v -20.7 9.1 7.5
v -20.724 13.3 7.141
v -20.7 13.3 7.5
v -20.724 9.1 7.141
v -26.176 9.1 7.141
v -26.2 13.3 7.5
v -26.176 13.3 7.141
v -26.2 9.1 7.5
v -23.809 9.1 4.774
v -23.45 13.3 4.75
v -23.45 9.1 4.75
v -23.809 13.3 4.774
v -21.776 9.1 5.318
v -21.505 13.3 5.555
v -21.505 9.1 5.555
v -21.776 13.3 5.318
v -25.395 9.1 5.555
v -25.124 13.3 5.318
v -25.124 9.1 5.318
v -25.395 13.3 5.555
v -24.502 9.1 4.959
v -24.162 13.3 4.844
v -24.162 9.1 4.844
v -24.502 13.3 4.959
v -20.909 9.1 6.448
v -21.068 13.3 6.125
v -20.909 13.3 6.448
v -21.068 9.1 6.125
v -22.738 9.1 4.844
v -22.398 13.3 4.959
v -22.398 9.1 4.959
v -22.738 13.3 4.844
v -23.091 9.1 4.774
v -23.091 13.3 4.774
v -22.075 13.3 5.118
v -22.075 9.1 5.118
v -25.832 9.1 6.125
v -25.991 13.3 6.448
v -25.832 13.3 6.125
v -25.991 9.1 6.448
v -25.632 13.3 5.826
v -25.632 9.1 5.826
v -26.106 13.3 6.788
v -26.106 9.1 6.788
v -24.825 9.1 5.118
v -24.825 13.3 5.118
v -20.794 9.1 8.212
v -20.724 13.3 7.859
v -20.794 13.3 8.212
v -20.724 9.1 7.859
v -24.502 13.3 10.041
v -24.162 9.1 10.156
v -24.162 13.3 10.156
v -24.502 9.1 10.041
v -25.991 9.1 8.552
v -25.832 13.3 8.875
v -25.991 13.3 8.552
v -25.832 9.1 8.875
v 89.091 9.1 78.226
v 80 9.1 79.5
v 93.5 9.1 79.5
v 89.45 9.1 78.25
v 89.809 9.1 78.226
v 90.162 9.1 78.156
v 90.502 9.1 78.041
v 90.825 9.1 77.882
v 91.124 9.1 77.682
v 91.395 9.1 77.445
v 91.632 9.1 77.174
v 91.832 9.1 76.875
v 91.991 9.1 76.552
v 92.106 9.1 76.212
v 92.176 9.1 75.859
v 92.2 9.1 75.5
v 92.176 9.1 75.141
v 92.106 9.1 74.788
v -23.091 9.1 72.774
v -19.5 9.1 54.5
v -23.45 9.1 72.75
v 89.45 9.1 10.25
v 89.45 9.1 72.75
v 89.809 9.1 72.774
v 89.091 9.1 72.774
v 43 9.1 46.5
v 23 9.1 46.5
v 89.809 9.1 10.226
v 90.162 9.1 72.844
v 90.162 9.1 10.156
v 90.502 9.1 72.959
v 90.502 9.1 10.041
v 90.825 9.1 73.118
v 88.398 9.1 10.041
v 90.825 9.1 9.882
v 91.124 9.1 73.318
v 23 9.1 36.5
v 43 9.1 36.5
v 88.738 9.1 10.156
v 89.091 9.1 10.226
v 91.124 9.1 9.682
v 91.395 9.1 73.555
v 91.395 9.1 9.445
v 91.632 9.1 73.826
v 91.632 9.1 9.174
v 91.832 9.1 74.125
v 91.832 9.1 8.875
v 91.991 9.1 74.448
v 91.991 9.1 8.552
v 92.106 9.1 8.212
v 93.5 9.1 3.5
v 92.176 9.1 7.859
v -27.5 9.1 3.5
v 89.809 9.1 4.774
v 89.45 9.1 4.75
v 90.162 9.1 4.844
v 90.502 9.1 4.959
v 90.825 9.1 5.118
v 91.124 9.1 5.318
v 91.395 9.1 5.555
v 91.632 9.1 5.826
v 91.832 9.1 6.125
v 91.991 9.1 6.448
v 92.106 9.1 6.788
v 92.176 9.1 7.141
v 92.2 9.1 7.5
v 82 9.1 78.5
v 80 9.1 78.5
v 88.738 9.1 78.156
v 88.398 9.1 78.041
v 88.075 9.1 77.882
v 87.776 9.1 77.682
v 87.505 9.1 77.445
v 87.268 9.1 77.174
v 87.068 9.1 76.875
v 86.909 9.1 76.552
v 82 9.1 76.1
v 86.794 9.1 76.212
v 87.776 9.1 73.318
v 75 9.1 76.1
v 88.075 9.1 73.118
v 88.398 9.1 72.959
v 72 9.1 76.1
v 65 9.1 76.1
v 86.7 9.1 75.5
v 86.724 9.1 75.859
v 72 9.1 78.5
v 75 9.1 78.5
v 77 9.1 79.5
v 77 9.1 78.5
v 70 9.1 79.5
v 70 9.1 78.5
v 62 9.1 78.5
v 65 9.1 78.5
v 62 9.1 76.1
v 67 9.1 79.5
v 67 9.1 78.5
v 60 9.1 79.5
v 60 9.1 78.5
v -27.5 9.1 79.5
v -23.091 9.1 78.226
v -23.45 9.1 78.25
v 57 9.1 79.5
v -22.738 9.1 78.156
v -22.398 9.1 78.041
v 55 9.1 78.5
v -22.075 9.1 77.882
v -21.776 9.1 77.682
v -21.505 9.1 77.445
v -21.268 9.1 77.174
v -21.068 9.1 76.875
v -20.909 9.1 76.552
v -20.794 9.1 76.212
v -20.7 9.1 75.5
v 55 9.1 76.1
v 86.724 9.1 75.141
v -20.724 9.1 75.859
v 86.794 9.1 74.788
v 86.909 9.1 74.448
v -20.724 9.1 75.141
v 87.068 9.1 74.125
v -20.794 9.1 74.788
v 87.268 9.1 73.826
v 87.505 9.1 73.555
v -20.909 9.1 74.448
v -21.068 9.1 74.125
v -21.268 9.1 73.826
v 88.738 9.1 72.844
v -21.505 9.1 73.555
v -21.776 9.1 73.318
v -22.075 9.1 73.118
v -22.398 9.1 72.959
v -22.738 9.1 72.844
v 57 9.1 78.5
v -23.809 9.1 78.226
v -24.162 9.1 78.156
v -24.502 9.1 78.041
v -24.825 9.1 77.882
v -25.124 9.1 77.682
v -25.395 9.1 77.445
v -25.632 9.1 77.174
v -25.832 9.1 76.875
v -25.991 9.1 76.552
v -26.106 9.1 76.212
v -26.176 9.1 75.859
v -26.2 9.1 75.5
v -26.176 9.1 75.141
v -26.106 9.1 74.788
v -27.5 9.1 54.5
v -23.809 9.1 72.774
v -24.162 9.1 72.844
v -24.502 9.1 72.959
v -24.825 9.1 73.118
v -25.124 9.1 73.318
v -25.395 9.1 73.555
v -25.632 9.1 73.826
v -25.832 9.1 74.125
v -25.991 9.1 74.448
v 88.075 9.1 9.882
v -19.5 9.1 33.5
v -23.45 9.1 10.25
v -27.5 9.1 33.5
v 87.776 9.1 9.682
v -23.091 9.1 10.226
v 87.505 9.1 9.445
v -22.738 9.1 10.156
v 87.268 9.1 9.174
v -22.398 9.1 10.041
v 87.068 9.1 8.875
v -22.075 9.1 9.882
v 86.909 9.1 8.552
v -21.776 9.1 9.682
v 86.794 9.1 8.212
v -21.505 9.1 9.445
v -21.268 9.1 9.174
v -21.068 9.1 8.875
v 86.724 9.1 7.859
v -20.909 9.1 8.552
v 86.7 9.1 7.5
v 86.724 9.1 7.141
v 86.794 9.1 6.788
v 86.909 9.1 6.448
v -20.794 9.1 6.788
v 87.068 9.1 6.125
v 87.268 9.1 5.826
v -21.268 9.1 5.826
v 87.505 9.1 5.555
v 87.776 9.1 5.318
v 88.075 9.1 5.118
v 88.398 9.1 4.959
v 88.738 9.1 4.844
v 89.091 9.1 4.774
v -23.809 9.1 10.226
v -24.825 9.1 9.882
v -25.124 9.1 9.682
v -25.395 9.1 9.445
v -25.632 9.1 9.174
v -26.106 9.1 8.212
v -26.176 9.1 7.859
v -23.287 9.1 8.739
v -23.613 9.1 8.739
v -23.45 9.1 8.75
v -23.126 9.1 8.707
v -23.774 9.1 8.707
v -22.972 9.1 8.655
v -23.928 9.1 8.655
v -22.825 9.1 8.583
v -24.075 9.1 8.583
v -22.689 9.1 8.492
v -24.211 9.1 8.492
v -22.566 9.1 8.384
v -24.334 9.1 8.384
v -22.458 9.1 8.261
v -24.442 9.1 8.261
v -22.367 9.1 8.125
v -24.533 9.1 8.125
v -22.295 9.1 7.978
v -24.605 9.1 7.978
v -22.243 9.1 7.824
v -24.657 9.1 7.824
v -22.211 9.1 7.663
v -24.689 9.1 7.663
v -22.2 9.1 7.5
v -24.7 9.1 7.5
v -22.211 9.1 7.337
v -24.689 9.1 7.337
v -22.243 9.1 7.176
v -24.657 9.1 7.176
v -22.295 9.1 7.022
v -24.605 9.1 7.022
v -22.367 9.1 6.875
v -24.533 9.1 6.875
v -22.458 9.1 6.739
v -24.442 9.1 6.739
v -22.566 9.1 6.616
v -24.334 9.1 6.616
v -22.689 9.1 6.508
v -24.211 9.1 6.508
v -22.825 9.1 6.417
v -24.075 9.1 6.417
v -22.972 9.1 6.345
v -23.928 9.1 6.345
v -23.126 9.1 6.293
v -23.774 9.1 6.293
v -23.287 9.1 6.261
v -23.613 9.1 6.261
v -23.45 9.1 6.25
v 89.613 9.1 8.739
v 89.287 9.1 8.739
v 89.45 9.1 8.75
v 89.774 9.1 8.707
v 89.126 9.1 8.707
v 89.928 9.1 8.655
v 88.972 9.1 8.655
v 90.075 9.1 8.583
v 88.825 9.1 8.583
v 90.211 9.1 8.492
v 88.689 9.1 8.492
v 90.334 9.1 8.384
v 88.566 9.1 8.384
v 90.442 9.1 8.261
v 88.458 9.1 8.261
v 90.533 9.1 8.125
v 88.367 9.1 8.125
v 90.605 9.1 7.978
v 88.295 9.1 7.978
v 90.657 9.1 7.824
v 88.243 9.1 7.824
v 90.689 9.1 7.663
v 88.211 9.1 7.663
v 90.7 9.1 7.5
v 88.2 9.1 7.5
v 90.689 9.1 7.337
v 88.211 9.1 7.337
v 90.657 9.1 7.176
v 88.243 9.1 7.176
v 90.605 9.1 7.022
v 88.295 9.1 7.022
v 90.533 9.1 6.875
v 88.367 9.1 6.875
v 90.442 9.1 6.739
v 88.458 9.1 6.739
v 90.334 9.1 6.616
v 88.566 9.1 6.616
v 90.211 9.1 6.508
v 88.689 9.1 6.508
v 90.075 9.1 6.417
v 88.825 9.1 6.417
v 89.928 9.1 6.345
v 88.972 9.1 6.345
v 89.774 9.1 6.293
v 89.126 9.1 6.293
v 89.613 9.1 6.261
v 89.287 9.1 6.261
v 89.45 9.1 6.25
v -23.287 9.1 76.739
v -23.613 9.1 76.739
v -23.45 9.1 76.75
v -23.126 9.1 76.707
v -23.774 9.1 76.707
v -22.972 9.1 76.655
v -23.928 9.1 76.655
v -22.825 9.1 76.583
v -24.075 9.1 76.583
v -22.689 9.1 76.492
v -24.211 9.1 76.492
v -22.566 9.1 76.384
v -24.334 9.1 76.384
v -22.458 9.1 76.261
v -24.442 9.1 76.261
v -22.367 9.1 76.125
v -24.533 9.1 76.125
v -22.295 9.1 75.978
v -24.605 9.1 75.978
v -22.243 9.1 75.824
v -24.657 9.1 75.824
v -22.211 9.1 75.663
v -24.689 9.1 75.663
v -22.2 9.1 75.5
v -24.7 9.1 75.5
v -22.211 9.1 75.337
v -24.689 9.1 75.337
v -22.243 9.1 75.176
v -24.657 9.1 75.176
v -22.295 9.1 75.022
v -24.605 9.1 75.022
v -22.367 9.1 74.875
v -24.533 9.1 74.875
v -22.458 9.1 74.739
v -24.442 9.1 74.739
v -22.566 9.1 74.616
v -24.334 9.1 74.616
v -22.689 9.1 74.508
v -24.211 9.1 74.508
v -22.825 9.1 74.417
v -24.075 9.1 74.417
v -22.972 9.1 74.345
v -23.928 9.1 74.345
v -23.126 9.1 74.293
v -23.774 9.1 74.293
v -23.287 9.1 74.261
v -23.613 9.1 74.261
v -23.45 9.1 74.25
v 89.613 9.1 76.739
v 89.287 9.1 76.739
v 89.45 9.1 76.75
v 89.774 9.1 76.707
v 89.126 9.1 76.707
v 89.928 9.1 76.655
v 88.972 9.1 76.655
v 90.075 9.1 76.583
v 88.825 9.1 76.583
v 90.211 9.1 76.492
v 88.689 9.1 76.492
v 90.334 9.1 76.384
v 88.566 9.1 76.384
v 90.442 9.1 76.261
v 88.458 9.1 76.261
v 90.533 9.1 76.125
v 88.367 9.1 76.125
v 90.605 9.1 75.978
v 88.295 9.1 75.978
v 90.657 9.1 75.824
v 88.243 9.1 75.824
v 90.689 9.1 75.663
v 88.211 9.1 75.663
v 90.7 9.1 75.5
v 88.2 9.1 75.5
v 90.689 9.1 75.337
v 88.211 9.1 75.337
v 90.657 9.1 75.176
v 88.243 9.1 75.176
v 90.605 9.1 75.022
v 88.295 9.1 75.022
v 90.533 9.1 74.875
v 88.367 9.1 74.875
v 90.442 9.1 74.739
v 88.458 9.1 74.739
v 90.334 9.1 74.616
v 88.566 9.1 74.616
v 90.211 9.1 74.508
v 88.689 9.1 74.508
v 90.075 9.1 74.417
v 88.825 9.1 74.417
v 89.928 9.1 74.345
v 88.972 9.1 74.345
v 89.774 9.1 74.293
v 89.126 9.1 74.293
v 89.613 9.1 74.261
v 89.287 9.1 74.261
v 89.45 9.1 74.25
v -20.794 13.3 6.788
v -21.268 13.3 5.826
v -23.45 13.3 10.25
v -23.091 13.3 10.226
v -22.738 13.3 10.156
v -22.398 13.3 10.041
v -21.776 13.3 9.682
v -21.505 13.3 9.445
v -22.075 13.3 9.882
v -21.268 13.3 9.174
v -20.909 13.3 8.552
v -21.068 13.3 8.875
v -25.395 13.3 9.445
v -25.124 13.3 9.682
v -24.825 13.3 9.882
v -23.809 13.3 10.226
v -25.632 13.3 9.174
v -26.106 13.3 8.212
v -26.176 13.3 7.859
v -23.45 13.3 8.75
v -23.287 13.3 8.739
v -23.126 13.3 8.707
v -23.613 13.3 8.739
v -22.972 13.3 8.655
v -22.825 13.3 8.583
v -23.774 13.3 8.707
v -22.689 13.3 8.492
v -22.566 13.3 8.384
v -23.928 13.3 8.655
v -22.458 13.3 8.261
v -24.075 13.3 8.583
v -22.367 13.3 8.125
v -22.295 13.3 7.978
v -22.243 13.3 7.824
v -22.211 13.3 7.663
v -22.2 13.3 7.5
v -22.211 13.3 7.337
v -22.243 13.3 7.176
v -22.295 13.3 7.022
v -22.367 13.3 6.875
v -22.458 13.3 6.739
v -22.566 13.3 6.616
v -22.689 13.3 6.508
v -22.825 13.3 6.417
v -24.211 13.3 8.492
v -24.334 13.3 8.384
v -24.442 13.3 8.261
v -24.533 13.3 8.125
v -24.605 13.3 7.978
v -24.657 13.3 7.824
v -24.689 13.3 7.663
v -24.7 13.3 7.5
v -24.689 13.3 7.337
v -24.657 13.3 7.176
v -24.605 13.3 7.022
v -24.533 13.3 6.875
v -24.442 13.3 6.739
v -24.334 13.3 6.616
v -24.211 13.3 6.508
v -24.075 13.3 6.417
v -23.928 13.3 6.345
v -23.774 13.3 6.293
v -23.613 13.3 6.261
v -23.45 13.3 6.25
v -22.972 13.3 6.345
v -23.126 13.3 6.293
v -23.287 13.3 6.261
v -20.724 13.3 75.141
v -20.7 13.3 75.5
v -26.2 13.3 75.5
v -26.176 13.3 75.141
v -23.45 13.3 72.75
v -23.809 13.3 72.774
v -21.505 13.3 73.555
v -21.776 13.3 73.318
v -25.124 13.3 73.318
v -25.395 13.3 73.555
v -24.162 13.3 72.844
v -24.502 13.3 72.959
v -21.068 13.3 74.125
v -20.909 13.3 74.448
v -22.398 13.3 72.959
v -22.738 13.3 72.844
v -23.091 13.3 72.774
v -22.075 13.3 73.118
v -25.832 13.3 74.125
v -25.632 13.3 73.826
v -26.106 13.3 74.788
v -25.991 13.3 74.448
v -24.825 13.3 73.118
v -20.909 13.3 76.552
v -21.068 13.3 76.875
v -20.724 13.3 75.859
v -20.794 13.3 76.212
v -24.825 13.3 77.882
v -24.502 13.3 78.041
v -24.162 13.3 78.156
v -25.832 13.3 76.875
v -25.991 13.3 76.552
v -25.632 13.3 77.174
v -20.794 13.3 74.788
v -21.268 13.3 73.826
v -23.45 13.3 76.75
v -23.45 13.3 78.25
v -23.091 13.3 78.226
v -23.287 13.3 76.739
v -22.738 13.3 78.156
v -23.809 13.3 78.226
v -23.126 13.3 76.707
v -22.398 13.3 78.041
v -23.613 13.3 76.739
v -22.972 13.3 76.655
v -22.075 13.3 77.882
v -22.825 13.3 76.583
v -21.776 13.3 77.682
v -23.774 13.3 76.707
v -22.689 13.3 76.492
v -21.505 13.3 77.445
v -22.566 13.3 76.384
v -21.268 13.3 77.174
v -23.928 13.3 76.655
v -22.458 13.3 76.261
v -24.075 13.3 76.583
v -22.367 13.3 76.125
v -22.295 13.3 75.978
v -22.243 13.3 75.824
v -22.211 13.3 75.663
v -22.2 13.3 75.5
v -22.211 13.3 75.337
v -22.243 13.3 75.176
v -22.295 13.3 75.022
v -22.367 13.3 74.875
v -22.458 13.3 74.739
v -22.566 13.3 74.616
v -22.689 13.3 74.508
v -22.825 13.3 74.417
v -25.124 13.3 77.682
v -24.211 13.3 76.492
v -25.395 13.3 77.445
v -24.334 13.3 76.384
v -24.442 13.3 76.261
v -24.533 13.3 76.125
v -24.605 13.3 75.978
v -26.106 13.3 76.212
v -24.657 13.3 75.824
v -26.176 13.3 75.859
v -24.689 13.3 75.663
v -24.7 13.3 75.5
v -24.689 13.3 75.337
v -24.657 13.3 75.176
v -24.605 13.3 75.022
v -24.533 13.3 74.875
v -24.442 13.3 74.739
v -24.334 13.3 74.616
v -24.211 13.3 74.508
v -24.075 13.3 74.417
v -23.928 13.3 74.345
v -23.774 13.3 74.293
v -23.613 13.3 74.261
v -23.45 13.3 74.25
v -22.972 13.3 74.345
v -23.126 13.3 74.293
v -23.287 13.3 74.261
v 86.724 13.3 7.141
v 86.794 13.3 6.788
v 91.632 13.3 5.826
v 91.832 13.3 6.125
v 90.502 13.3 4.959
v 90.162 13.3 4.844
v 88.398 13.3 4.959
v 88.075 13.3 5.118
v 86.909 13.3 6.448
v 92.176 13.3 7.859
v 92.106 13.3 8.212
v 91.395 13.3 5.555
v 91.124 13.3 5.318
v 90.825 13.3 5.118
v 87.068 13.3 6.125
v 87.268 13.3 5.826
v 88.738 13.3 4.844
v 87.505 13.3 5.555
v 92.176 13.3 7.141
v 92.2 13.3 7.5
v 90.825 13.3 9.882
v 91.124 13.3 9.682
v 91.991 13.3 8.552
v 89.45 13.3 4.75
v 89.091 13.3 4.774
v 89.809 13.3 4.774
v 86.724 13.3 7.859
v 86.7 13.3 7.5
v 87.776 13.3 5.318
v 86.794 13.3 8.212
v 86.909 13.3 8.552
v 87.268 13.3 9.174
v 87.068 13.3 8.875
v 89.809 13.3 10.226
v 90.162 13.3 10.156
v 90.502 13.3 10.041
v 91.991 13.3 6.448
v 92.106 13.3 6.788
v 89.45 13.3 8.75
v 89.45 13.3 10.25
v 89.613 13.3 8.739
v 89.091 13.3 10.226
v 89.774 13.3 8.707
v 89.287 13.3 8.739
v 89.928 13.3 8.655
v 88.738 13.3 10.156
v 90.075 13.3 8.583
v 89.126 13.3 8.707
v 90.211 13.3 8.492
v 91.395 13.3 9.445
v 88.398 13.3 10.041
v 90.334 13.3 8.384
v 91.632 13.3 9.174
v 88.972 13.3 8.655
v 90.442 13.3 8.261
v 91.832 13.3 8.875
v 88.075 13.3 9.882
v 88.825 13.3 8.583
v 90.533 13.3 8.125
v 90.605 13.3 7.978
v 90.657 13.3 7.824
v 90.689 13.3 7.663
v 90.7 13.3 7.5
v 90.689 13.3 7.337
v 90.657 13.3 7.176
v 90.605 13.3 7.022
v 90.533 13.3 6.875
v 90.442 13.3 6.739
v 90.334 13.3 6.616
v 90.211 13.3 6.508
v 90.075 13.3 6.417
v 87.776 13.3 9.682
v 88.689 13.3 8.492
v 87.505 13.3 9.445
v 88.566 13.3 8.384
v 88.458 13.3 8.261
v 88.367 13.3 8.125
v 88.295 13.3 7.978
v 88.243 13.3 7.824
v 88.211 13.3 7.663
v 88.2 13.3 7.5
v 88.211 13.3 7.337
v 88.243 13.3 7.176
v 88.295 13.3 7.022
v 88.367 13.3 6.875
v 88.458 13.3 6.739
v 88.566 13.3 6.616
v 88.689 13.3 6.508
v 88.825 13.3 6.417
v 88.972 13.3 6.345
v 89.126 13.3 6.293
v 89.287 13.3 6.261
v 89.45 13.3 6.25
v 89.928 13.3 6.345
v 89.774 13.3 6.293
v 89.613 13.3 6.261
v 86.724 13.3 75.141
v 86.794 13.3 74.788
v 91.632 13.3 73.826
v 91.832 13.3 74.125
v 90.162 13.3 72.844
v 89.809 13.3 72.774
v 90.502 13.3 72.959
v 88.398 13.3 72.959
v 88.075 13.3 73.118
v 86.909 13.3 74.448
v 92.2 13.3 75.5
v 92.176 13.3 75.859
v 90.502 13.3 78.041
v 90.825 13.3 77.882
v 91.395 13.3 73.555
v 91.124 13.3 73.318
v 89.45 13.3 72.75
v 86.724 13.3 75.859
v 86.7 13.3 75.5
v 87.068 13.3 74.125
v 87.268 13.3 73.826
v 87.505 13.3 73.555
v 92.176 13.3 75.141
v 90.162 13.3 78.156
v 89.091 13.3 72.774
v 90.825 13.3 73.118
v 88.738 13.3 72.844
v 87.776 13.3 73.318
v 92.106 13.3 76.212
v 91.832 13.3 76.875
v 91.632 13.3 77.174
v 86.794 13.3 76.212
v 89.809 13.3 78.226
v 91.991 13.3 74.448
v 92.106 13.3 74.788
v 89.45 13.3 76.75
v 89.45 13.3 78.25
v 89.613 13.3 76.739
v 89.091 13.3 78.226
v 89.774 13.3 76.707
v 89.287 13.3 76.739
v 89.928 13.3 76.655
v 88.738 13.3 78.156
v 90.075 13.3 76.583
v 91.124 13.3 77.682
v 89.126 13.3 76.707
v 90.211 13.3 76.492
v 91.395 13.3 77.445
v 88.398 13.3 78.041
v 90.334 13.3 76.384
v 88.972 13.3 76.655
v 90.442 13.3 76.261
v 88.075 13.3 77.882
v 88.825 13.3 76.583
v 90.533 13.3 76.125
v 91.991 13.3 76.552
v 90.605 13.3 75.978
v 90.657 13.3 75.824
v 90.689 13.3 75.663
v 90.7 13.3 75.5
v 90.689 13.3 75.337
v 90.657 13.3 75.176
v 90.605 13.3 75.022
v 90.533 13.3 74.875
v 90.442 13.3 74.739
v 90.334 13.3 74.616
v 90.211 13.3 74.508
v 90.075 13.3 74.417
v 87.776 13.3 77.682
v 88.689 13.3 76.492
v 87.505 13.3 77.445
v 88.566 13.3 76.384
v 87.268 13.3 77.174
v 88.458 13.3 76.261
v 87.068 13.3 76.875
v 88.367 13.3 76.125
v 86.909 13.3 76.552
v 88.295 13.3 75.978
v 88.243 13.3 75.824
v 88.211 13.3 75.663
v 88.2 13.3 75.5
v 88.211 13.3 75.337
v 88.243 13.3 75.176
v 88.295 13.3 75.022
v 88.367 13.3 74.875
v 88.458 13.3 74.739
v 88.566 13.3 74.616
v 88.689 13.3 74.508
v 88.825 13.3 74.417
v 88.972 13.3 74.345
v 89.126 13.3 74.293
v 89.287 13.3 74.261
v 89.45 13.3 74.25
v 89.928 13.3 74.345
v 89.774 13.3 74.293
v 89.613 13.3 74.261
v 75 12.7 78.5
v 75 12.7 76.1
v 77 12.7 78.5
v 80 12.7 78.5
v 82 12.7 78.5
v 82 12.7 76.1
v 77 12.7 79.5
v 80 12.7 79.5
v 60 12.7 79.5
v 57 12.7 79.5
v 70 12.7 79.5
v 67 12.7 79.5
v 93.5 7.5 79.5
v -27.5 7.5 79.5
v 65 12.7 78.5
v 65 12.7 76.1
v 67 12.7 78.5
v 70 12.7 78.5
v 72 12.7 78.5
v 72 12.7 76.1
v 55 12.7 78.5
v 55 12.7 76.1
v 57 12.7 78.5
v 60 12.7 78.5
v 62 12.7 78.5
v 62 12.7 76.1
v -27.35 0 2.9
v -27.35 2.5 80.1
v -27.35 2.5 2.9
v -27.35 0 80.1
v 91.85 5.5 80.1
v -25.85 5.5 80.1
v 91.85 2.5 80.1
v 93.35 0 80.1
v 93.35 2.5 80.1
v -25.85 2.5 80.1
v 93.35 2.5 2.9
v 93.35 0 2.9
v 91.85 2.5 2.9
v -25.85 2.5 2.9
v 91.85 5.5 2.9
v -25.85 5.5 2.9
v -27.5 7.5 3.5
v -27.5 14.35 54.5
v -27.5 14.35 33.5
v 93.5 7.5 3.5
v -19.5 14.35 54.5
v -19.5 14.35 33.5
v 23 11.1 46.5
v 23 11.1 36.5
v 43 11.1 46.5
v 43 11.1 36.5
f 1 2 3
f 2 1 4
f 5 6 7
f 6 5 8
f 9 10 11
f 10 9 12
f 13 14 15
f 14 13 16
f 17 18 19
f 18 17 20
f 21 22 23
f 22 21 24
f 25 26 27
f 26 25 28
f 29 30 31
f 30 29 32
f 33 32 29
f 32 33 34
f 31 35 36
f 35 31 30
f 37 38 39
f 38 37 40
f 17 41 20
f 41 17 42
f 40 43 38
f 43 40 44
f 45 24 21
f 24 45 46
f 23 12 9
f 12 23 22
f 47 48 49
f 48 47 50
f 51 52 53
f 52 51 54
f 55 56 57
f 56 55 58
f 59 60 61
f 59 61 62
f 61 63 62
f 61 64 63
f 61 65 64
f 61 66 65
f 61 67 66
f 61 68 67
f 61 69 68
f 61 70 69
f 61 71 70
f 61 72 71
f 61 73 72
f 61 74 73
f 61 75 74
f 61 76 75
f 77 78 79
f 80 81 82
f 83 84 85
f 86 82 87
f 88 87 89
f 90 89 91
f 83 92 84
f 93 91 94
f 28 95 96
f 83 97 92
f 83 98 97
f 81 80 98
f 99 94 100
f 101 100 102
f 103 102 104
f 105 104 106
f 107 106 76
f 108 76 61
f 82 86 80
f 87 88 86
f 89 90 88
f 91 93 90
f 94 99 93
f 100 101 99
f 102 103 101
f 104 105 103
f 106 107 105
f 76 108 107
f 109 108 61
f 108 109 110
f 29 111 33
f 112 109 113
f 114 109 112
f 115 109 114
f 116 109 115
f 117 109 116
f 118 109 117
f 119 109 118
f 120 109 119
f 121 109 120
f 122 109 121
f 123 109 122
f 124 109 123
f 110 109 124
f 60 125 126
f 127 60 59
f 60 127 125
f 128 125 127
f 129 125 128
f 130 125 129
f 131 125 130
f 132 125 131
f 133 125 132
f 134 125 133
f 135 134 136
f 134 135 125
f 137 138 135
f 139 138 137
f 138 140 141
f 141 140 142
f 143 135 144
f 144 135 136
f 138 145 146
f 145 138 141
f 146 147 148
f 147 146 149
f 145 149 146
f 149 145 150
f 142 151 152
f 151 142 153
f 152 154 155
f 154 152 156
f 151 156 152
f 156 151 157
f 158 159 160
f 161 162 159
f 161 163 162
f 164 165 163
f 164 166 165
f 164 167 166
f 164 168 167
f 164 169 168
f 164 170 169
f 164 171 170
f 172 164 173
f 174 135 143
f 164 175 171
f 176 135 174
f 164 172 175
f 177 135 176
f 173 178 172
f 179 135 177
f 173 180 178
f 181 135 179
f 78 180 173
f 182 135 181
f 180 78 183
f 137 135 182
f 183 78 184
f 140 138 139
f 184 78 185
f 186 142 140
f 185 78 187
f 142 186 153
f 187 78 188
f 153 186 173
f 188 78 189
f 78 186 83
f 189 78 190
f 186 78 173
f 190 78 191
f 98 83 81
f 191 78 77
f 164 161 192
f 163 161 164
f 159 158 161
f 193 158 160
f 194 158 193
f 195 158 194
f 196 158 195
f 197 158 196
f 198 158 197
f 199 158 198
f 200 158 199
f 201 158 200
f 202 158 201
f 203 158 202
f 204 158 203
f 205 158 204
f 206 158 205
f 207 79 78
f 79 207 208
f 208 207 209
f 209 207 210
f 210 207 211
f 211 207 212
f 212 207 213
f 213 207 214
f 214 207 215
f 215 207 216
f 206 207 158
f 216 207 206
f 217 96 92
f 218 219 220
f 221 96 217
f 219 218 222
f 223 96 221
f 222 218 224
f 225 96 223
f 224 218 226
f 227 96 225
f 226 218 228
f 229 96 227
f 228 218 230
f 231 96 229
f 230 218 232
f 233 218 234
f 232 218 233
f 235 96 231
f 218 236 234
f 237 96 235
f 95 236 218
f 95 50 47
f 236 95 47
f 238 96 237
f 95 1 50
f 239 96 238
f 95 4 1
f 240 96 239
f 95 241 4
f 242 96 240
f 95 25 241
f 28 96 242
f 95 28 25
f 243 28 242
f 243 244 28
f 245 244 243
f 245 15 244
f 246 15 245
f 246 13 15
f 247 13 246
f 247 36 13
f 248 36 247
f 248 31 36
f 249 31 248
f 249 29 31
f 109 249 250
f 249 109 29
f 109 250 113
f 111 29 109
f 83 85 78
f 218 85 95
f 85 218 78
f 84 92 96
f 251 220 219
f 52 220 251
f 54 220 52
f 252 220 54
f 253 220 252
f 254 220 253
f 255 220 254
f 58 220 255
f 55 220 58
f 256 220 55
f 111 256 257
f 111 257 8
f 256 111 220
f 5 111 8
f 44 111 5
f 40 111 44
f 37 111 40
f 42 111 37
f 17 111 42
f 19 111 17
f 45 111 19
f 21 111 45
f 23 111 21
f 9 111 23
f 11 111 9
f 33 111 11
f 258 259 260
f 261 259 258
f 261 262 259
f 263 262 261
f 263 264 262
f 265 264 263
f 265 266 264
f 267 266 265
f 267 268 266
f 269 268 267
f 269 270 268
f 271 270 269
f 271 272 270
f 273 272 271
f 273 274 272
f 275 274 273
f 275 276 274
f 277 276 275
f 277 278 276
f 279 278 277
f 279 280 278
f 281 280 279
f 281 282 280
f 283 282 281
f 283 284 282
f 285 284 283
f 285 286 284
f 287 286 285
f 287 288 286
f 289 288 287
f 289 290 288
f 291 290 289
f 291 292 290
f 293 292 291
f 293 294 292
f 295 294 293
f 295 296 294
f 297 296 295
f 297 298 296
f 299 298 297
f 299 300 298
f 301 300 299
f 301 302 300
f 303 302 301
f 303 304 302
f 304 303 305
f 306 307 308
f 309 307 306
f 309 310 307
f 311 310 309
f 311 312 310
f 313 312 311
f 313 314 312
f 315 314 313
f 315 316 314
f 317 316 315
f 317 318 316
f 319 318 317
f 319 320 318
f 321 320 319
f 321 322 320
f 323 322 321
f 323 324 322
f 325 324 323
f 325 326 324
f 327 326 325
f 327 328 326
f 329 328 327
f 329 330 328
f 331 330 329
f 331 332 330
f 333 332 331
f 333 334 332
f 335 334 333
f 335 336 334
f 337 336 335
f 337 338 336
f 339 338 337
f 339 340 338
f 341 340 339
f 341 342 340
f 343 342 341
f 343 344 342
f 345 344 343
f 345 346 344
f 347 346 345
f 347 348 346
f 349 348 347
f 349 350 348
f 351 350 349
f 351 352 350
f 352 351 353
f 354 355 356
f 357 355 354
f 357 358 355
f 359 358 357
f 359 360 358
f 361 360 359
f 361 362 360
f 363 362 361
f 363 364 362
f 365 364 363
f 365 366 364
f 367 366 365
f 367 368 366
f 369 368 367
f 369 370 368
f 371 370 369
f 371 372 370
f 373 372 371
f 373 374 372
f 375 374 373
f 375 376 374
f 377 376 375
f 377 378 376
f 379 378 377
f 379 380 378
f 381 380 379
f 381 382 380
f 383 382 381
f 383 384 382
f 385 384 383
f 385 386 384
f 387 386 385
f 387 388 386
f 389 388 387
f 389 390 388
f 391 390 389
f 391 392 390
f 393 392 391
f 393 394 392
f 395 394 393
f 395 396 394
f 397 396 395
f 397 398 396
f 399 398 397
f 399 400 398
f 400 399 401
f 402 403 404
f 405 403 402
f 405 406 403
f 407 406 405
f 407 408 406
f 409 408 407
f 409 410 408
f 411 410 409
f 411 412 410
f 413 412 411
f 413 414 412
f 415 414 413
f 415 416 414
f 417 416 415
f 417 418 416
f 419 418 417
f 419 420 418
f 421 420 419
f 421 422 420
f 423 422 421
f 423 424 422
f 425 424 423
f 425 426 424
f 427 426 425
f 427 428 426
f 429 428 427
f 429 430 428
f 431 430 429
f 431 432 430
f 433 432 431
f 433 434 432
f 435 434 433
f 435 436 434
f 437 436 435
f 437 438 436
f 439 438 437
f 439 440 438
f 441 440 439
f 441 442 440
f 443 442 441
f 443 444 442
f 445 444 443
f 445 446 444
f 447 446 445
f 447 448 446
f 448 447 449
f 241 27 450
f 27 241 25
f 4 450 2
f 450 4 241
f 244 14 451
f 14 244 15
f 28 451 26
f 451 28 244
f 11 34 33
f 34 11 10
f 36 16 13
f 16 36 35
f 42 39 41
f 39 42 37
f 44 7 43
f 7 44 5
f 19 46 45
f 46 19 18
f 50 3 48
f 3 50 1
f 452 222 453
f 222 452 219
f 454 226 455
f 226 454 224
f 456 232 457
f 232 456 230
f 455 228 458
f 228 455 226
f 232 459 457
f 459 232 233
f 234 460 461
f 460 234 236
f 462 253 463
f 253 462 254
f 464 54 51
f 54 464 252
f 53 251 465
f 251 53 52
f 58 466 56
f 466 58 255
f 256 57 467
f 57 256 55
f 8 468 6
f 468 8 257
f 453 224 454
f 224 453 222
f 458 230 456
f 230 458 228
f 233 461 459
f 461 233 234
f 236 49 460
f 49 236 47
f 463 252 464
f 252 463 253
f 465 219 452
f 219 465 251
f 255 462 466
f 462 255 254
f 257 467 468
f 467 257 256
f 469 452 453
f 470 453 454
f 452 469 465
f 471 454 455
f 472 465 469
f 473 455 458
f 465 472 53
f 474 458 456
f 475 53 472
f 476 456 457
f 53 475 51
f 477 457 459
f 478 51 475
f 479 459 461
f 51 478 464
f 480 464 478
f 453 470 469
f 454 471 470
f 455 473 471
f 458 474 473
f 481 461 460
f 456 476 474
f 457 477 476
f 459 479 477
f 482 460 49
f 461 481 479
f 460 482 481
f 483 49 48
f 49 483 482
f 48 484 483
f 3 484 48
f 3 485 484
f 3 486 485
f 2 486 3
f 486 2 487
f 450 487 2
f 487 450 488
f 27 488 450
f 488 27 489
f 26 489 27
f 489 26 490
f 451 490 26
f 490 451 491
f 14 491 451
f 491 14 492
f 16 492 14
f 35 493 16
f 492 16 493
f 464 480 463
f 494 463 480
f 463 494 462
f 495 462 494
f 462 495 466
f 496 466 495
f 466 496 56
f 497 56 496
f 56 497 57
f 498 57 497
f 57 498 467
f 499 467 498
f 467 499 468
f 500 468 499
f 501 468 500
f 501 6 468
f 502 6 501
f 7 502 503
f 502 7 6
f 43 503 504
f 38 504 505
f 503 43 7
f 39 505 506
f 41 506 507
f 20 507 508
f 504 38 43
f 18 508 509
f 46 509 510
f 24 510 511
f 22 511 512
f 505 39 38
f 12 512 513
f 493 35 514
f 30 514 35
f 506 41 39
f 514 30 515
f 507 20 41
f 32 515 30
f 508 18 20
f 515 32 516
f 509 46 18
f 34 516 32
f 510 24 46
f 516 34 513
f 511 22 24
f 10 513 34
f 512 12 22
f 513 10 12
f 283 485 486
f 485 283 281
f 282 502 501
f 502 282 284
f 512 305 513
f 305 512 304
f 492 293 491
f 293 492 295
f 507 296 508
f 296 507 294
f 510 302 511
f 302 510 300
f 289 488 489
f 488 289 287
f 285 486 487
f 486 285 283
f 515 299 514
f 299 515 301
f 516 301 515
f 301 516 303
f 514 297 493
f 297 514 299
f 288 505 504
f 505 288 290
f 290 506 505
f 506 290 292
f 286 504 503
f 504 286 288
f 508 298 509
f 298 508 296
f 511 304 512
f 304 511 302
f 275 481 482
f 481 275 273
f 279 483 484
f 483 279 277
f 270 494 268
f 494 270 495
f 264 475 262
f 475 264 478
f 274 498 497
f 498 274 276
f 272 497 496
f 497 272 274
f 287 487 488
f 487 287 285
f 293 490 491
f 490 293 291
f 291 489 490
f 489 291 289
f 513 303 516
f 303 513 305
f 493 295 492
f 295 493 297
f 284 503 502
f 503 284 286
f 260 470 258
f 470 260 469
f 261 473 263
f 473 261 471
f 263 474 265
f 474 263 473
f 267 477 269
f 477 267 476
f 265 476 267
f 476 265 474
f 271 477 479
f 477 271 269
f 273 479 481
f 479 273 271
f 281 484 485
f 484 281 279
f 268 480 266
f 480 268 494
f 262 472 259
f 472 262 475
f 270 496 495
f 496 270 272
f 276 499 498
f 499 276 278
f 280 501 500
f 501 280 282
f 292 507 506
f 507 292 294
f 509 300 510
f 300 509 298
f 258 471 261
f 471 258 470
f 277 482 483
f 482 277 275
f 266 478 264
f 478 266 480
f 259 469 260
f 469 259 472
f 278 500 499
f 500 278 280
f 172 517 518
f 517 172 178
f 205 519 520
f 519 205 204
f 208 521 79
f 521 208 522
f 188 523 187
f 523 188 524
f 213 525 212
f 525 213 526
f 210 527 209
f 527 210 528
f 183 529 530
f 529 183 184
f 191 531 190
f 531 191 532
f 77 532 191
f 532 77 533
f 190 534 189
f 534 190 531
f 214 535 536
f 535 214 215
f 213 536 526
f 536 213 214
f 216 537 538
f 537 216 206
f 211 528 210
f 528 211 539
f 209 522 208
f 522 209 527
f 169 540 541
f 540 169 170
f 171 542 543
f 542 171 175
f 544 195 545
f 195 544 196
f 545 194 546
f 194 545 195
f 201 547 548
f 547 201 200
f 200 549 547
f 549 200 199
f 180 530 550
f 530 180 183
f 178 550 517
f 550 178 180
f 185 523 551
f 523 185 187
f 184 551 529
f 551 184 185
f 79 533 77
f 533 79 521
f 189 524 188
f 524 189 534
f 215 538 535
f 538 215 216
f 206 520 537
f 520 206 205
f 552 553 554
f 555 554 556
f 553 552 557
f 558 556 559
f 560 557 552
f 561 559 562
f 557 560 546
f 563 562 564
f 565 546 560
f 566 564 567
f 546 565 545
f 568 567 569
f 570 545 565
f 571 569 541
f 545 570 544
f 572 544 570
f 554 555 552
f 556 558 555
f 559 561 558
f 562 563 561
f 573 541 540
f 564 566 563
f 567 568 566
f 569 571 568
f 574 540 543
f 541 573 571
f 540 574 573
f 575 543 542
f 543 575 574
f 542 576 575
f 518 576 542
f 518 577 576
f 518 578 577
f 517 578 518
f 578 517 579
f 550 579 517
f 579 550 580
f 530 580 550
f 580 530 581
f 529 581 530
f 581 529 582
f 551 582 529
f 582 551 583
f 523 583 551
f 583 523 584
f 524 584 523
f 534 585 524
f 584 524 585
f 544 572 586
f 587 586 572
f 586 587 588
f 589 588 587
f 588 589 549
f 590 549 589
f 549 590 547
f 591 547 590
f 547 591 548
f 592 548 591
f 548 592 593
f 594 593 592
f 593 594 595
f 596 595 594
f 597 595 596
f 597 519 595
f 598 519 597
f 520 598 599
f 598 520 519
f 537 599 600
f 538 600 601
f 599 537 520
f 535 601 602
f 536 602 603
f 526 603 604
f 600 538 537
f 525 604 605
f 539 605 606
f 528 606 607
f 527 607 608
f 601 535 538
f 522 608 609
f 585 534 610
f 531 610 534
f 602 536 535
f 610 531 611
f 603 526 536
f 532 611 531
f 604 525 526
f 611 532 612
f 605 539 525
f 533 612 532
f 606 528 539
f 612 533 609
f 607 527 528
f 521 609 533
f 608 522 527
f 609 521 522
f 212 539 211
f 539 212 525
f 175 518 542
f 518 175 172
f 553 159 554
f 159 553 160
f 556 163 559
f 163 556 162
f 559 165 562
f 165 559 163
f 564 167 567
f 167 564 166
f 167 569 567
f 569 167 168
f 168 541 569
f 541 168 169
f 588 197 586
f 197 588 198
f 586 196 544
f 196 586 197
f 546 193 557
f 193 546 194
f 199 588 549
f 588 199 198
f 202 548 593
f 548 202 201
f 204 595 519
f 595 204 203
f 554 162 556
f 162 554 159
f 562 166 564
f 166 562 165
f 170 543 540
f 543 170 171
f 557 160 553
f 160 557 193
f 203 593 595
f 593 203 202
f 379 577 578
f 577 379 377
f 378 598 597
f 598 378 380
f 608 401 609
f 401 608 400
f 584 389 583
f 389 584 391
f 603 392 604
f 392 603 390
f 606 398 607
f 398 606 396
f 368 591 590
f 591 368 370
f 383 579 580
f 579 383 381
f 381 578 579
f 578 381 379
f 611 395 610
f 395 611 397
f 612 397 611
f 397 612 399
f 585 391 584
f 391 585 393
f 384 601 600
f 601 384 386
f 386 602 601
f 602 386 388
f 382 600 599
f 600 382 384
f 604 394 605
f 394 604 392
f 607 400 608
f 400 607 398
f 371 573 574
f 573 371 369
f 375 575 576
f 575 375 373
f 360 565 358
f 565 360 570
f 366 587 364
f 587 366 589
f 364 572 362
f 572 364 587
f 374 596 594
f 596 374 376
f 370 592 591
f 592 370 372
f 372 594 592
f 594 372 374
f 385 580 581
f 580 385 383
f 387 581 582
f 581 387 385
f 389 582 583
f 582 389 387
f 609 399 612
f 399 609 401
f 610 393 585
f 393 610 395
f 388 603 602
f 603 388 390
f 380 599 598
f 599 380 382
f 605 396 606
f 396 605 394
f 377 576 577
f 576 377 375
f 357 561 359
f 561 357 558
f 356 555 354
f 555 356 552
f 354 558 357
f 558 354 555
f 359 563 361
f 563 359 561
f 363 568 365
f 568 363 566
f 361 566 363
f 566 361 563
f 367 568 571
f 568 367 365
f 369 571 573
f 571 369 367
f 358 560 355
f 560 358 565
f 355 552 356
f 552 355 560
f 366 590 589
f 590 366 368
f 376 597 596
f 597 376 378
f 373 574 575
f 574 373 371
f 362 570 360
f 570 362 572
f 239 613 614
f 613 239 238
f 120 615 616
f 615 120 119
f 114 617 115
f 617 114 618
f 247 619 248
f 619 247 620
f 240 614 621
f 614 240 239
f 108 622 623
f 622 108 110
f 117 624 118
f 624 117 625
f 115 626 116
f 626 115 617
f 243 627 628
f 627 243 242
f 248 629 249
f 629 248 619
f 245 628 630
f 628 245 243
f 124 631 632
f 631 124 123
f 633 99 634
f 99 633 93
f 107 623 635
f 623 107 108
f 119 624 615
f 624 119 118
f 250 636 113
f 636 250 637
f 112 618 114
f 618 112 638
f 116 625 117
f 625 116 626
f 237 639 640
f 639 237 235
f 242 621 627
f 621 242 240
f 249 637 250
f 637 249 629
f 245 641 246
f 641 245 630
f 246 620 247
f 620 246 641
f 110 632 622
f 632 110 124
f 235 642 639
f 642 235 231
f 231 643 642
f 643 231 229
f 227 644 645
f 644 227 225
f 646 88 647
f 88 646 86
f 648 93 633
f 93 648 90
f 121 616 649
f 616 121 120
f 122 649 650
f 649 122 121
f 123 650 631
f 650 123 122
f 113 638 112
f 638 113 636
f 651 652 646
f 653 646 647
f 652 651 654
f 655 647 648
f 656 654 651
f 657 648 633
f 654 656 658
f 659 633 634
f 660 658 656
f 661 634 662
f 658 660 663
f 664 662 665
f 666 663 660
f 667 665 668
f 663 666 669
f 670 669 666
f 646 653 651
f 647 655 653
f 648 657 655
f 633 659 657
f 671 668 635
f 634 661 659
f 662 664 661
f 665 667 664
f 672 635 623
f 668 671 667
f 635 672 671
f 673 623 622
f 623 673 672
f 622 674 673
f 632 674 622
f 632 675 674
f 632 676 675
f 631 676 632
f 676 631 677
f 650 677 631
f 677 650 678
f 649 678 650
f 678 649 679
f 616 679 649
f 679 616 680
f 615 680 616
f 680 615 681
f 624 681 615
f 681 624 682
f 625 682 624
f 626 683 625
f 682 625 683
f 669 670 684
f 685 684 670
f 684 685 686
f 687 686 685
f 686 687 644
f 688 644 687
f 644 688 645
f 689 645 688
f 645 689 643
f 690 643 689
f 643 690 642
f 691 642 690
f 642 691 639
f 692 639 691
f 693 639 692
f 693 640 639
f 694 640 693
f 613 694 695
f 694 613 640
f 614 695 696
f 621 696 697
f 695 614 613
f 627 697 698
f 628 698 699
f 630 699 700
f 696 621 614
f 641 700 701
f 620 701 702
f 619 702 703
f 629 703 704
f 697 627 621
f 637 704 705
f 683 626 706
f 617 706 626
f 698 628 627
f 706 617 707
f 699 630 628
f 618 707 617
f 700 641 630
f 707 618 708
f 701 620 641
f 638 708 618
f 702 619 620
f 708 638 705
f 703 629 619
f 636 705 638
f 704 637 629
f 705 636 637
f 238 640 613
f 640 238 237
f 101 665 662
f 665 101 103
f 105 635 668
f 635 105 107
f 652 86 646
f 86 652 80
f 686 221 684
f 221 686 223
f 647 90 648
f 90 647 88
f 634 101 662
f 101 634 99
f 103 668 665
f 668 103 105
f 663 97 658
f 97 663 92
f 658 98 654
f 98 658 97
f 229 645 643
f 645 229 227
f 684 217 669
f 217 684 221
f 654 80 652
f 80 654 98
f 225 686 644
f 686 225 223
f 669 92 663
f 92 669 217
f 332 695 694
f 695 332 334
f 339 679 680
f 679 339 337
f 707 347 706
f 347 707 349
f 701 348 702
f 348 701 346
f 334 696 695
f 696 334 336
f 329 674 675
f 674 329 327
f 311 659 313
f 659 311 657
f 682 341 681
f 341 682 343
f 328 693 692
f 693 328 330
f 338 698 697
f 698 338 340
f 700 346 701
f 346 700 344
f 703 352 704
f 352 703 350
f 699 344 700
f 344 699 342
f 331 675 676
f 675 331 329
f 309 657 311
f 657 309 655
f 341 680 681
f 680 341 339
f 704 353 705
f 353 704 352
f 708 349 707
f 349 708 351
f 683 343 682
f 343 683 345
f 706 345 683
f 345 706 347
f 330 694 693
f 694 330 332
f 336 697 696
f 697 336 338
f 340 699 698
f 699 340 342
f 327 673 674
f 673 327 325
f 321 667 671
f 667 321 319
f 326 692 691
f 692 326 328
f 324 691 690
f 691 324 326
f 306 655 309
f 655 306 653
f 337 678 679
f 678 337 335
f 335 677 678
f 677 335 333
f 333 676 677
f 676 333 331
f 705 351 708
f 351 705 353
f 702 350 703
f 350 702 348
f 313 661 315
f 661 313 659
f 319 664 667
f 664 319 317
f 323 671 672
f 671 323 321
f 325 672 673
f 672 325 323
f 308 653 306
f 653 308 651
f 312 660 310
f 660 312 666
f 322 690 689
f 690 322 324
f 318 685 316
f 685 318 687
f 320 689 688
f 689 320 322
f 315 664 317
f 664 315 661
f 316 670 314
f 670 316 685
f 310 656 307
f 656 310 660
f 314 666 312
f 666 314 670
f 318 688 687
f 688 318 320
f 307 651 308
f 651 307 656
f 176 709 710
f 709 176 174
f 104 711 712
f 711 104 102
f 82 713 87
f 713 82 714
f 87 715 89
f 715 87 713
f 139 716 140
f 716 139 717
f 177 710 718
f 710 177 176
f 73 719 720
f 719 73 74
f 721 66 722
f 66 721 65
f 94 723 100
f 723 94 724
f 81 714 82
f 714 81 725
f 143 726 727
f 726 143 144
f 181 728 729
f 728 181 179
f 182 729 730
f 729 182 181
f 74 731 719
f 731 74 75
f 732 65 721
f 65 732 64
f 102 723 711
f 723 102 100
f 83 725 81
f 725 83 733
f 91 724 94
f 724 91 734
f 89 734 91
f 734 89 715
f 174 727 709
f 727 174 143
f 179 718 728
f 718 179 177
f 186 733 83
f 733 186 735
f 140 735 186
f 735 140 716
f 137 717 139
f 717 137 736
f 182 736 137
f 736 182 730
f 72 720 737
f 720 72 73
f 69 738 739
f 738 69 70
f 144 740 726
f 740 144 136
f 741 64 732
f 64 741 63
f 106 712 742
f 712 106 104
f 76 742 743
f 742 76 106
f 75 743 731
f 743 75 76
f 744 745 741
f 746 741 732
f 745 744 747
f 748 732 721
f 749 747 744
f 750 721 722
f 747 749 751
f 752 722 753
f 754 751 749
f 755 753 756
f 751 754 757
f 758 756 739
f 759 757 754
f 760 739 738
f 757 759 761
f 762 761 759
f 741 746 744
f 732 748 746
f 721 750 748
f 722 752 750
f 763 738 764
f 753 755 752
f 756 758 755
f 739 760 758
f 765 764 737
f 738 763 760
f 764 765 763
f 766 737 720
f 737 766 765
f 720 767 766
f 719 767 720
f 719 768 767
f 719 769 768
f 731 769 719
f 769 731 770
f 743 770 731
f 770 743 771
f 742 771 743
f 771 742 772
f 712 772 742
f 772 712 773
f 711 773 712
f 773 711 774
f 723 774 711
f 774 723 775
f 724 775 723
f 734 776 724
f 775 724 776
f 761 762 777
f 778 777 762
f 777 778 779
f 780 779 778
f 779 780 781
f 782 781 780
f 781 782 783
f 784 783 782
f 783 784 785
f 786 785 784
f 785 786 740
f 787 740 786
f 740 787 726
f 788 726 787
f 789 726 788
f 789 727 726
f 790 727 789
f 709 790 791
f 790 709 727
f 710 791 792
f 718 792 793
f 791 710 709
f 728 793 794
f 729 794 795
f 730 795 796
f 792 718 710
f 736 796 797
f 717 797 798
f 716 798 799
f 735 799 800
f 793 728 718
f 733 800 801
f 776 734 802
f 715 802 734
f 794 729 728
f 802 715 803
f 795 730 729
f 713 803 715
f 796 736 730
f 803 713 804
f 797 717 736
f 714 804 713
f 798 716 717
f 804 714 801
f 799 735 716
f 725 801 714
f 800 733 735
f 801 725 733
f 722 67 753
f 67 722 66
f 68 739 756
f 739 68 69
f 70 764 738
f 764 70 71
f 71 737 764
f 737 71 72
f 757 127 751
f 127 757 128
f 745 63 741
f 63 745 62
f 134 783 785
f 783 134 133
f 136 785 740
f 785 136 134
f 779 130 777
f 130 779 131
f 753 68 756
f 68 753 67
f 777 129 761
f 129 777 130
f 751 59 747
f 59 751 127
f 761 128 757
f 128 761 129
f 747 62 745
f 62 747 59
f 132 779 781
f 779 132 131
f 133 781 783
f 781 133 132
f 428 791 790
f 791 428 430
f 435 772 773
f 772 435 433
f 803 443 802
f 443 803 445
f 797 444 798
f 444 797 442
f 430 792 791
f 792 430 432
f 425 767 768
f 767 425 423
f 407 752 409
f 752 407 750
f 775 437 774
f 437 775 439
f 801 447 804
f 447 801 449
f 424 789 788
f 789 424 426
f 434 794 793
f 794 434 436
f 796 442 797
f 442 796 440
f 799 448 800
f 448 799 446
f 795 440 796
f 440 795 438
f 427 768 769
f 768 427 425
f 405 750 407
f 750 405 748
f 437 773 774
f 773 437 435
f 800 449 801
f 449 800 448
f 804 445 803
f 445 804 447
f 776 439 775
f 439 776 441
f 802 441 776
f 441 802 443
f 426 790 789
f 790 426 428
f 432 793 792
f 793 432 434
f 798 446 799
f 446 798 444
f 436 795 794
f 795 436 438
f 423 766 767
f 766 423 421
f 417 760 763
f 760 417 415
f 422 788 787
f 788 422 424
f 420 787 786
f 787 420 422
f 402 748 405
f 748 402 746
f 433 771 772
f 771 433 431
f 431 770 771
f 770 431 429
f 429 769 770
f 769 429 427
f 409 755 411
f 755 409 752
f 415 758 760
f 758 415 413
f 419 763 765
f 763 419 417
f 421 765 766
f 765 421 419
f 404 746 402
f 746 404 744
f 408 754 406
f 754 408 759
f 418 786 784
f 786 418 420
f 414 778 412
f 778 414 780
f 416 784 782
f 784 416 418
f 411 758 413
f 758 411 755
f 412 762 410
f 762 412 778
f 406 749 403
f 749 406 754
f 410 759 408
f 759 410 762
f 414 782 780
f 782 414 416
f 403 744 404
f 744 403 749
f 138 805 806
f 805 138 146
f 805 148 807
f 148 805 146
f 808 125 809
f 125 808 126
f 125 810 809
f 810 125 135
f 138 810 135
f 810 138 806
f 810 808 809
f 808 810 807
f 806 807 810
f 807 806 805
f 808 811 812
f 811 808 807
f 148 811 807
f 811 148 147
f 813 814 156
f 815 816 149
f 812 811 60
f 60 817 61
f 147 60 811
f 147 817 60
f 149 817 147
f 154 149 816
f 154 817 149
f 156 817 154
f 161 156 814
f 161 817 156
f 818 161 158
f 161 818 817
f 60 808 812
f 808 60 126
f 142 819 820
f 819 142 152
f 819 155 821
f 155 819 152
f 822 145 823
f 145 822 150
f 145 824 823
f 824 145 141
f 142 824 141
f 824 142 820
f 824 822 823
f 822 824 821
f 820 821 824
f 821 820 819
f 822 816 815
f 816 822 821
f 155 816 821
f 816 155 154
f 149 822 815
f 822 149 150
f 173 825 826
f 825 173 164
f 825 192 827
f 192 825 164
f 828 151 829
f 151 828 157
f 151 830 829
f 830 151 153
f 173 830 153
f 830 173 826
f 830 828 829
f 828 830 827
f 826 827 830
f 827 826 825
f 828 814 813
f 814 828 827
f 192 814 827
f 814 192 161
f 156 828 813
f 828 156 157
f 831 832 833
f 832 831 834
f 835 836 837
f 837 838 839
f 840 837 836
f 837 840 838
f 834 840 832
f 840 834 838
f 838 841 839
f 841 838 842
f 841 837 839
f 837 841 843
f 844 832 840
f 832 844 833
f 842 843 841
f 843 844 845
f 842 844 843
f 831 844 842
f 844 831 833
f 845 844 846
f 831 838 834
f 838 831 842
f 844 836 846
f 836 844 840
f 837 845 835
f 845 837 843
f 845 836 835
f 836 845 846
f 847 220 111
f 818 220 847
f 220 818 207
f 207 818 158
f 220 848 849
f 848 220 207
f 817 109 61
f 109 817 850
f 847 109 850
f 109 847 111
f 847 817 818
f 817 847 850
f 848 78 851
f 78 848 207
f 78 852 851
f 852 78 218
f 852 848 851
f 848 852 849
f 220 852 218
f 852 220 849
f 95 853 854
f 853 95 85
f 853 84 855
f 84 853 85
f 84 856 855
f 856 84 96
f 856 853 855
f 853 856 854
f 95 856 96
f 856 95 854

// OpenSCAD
// file: D:/Projects/assembly-workshop/outputs/Screen_5in_SCR5-G_2026-10-30/checks/geometry.scad
// SCR5-G; mm; FRONT view: X right, Z up, Y into rack. Glass/plate front Y=0.
// Measured values: work/screen-5in/Dimensions.md. Physical fit/strength UNKNOWN.
part="plate";
DROP=0.45; // coupon winner can be substituted here; all three pins use this DROP
LIP=0.8; LIP_ON=true;
LIP_EDGES=[true,true,false,false]; // left,right,bottom,top; Brian: side lips only, cosmetic
FRAME_STEP=1.5; // measured glass-edge inset to metal LCD frame, left/right only
SHIM=0; // moves rear frame seat and plate-boss mating face back
$fn=48;
GCX=33; GCZ=41.5; PW=252; PH=88.8; PT=4;
GW=120.7; GH=77.2; CLEAR=0.2; WW=GW+2*CLEAR; WH=GH+2*CLEAR;
SEAT=13.3+SHIM; FT=3;
SO=[56.45,34]; BTN_X=[45.5,35.5,25.5];
PCB_TOP=38; GAP=0.10; LEAF_T=0.8;
HOLE=[3.4,40.3,44.7];
BX=[GCX-68,GCX+68]; BZ=[10,72];
// DSI connector X extent is unmeasured: conservative assumed 8 mm inward from PCB edge.
DSI=[GCX-60.5,9.1,GCZ-38+30,8,5.25,21];
module xz(y,d){translate([0,y+d,0])rotate([90,0,0])linear_extrude(d)children();}
// rr/rack_slots copied from SCR5-F; same exact slot centres, outline shifted -0.05 Z to centre 44.4.
module rr(w,h,r){hull()for(x=[-w/2+r,w/2-r],z=[-h/2+r,h/2-r])translate([x,z])circle(r=r);}
module rack_slots(){for(x=[-118.2625,118.2625],z=[6.323,38.127,50.773,82.577])translate([x,z])hull()for(dx=[-1.5,1.5])translate([dx,0])circle(d=7);}
module cyl_y(x,y,z,d,h){translate([x,y,z])rotate([-90,0,0])cylinder(d=d,h=h);}
module window_cut(){
  xz(-0.02,4.04)translate([GCX,GCZ])square([WW,WH],center=true);
  // 0.3 x 45-degree chamfer, square corners, front only.
  translate([GCX,0.3,GCZ])rotate([90,0,0])
    linear_extrude(height=0.3,scale=[(WW+0.6)/WW,(WH+0.6)/WH])square([WW,WH],center=true);
}
module lips(){
  // Cosmetic side ledges only; rear frame/standoffs set depth and retain the screen.
  if(LIP_ON)for(i=[0:3])if(LIP_EDGES[i]){
    if(i<2)translate([GCX+(i==0?-WW/2:WW/2-LIP),2.5,GCZ-GH/2+4])cube([LIP,0.8,GH-8]);
    else translate([GCX-GW/2+4,2.5,GCZ+(i==2?-WH/2:WH/2-LIP)])cube([GW-8,0.8,LIP]);
  }
}
// Leaf/nub/bump geometry copied from SCR5-WP-A, translated to this glass centre.
module leaves(){for(x=BTN_X)translate([GCX+x-1.5,0,GCZ]){
  translate([0,0,PCB_TOP+GAP+0.9+0.1])cube([3,11.8,LEAF_T]);
  translate([0,10.2,PCB_TOP+GAP])cube([3,1.4,1.0+LEAF_T/2]);
  translate([0,10.4,PCB_TOP+GAP+1.0+LEAF_T])cube([3,1.0,0.9]);
}}
module plate(){difference(){union(){
  difference(){xz(0,PT)translate([0,PH/2])rr(PW,PH,2.5);window_cut();}
  for(x=BX,z=BZ)cyl_y(x,3.9,z,8,SEAT-3.9);
  leaves(); lips();
 }
 xz(-0.02,4.04)rack_slots();
 for(x=BTN_X)translate([GCX+x-HOLE[0]/2,-0.02,GCZ+HOLE[1]])cube([HOLE[0],SEAT+FT+0.04,HOLE[2]-HOLE[1]]);
 // Printed-in screw pilots (no heat-set OD assumption): nominal M2.5, fit UNKNOWN.
 for(x=BX,z=BZ)cyl_y(x,SEAT-6,z,2.1,6.02);
 // Rear engraving, 0.5 deep, left field.
 xz(3.5,0.52)translate([-75,40])mirror([1,0])text("SCR5-G",size=6,halign="center",font="Liberation Sans:style=Bold");
}}
module frame_blank(){
  // C-shaped perimeter; no material across the board centre / touch FPC.
  xz(SEAT,FT)translate([GCX,GCZ])difference(){square([132,76],center=true);square([116,60],center=true);}
  for(sx=[-1,1],sz=[-1,1])cyl_y(GCX+sx*SO[0],SEAT,GCZ+sz*SO[1],9,FT);
  for(x=BX,z=BZ)hull(){cyl_y(x,SEAT,z,8,FT);cyl_y(GCX+(x<GCX?-62:62),SEAT,z,8,FT);}
}
module dsi_keepout(){translate([DSI[0]-3,DSI[1]-3,DSI[2]-3])cube([DSI[3]+6,DSI[4]+6,DSI[5]+6]);}
module ribbon_route(){
  // Open left/up corridor 18 mm wide; extends past top of plate.
  translate([GCX-84,6.1,GCZ-11])cube([18,24,65]);
  translate([GCX-84,6.1,GCZ-11])cube([32,24,27]);
}
module frame(){difference(){frame_blank();dsi_keepout();ribbon_route();
 for(sx=[-1,1],sz=[-1,1])cyl_y(GCX+sx*SO[0],SEAT-0.02,GCZ+sz*SO[1],2.8,FT+0.04);
 for(x=BX,z=BZ)cyl_y(x,SEAT-0.02,z,2.8,FT+0.04);
}}
// Pin polygon/cap/notch/dot design copied unchanged from SCR5-WP-A.
module pin(d,dots){s=2*d+0.5;difference(){union(){
 translate([-1.5,0,0])rotate([90,0,90])linear_extrude(3)polygon([
 [-s-0.02,40.5],[10.2,40.5],[10.2,41.0],[11.5,41.0],[11.5+2*d,41.0-d],[15,41.0-d],[15,44.5],[-s-0.02,44.5]]);
 translate([-2.5,-s-1.5,39.6])cube([5,1.5,5.8]);
 }for(i=[0:dots-1])translate([(i-(dots-1)/2)*1.4,-s-1.5-0.01,43.5])rotate([-90,0,0])cylinder(d=0.9,h=0.4);}}
module placed_pin(i){translate([GCX+BTN_X[i],0,GCZ])pin(DROP,i+1);}
// Measured layers: cover glass 0.9 + second glass 1.6, metal frame 3.0,
// open gap 2.0, PCB 1.6. Metal frame inset ~1.5 at LEFT/RIGHT only.
// PCB centred under glass and full metal-frame top/bottom extent remain UNKNOWN.
module glass(){translate([GCX-GW/2,0,GCZ-GH/2])cube([GW,2.5,GH]);}
module lcd(){
  translate([GCX-GW/2+FRAME_STEP,2.5,GCZ-GH/2])cube([GW-2*FRAME_STEP,3.0,GH]);
}
module pcb(){translate([GCX-60.5,7.5,GCZ-38])cube([121,1.6,76]);}
module standoffs(){for(sx=[-1,1],sz=[-1,1])difference(){cyl_y(GCX+sx*SO[0],9.1,GCZ+sz*SO[1],5.5,4.2);cyl_y(GCX+sx*SO[0],9.08,GCZ+sz*SO[1],2.5,4.24);}}
module buttons(){for(x=BTN_X){
 translate([GCX+x-3.5,9.1,GCZ+38-3.4])cube([7,3.6,2.4]);
 translate([GCX+x-1.5,9.1,GCZ+37])cube([3,3.6,1]);
}}
module dsi(){translate([DSI[0],DSI[1],DSI[2]])cube([DSI[3],DSI[4],DSI[5]]);}
module touch(){translate([GCX-10,9.1,GCZ-5])cube([20,2,10]);} // lateral extent unmeasured
module dummy(){glass();lcd();pcb();standoffs();buttons();dsi();touch();}
module assembly(){color("gray")plate();color("orange")frame();for(i=[0:2])color("cyan")placed_pin(i);color([0.2,0.3,0.4,0.4])dummy();}
// main file
include <D:/Projects/assembly-workshop/outputs/Screen_5in_SCR5-G_2026-10-30/checks/geometry.scad>
dummy();
